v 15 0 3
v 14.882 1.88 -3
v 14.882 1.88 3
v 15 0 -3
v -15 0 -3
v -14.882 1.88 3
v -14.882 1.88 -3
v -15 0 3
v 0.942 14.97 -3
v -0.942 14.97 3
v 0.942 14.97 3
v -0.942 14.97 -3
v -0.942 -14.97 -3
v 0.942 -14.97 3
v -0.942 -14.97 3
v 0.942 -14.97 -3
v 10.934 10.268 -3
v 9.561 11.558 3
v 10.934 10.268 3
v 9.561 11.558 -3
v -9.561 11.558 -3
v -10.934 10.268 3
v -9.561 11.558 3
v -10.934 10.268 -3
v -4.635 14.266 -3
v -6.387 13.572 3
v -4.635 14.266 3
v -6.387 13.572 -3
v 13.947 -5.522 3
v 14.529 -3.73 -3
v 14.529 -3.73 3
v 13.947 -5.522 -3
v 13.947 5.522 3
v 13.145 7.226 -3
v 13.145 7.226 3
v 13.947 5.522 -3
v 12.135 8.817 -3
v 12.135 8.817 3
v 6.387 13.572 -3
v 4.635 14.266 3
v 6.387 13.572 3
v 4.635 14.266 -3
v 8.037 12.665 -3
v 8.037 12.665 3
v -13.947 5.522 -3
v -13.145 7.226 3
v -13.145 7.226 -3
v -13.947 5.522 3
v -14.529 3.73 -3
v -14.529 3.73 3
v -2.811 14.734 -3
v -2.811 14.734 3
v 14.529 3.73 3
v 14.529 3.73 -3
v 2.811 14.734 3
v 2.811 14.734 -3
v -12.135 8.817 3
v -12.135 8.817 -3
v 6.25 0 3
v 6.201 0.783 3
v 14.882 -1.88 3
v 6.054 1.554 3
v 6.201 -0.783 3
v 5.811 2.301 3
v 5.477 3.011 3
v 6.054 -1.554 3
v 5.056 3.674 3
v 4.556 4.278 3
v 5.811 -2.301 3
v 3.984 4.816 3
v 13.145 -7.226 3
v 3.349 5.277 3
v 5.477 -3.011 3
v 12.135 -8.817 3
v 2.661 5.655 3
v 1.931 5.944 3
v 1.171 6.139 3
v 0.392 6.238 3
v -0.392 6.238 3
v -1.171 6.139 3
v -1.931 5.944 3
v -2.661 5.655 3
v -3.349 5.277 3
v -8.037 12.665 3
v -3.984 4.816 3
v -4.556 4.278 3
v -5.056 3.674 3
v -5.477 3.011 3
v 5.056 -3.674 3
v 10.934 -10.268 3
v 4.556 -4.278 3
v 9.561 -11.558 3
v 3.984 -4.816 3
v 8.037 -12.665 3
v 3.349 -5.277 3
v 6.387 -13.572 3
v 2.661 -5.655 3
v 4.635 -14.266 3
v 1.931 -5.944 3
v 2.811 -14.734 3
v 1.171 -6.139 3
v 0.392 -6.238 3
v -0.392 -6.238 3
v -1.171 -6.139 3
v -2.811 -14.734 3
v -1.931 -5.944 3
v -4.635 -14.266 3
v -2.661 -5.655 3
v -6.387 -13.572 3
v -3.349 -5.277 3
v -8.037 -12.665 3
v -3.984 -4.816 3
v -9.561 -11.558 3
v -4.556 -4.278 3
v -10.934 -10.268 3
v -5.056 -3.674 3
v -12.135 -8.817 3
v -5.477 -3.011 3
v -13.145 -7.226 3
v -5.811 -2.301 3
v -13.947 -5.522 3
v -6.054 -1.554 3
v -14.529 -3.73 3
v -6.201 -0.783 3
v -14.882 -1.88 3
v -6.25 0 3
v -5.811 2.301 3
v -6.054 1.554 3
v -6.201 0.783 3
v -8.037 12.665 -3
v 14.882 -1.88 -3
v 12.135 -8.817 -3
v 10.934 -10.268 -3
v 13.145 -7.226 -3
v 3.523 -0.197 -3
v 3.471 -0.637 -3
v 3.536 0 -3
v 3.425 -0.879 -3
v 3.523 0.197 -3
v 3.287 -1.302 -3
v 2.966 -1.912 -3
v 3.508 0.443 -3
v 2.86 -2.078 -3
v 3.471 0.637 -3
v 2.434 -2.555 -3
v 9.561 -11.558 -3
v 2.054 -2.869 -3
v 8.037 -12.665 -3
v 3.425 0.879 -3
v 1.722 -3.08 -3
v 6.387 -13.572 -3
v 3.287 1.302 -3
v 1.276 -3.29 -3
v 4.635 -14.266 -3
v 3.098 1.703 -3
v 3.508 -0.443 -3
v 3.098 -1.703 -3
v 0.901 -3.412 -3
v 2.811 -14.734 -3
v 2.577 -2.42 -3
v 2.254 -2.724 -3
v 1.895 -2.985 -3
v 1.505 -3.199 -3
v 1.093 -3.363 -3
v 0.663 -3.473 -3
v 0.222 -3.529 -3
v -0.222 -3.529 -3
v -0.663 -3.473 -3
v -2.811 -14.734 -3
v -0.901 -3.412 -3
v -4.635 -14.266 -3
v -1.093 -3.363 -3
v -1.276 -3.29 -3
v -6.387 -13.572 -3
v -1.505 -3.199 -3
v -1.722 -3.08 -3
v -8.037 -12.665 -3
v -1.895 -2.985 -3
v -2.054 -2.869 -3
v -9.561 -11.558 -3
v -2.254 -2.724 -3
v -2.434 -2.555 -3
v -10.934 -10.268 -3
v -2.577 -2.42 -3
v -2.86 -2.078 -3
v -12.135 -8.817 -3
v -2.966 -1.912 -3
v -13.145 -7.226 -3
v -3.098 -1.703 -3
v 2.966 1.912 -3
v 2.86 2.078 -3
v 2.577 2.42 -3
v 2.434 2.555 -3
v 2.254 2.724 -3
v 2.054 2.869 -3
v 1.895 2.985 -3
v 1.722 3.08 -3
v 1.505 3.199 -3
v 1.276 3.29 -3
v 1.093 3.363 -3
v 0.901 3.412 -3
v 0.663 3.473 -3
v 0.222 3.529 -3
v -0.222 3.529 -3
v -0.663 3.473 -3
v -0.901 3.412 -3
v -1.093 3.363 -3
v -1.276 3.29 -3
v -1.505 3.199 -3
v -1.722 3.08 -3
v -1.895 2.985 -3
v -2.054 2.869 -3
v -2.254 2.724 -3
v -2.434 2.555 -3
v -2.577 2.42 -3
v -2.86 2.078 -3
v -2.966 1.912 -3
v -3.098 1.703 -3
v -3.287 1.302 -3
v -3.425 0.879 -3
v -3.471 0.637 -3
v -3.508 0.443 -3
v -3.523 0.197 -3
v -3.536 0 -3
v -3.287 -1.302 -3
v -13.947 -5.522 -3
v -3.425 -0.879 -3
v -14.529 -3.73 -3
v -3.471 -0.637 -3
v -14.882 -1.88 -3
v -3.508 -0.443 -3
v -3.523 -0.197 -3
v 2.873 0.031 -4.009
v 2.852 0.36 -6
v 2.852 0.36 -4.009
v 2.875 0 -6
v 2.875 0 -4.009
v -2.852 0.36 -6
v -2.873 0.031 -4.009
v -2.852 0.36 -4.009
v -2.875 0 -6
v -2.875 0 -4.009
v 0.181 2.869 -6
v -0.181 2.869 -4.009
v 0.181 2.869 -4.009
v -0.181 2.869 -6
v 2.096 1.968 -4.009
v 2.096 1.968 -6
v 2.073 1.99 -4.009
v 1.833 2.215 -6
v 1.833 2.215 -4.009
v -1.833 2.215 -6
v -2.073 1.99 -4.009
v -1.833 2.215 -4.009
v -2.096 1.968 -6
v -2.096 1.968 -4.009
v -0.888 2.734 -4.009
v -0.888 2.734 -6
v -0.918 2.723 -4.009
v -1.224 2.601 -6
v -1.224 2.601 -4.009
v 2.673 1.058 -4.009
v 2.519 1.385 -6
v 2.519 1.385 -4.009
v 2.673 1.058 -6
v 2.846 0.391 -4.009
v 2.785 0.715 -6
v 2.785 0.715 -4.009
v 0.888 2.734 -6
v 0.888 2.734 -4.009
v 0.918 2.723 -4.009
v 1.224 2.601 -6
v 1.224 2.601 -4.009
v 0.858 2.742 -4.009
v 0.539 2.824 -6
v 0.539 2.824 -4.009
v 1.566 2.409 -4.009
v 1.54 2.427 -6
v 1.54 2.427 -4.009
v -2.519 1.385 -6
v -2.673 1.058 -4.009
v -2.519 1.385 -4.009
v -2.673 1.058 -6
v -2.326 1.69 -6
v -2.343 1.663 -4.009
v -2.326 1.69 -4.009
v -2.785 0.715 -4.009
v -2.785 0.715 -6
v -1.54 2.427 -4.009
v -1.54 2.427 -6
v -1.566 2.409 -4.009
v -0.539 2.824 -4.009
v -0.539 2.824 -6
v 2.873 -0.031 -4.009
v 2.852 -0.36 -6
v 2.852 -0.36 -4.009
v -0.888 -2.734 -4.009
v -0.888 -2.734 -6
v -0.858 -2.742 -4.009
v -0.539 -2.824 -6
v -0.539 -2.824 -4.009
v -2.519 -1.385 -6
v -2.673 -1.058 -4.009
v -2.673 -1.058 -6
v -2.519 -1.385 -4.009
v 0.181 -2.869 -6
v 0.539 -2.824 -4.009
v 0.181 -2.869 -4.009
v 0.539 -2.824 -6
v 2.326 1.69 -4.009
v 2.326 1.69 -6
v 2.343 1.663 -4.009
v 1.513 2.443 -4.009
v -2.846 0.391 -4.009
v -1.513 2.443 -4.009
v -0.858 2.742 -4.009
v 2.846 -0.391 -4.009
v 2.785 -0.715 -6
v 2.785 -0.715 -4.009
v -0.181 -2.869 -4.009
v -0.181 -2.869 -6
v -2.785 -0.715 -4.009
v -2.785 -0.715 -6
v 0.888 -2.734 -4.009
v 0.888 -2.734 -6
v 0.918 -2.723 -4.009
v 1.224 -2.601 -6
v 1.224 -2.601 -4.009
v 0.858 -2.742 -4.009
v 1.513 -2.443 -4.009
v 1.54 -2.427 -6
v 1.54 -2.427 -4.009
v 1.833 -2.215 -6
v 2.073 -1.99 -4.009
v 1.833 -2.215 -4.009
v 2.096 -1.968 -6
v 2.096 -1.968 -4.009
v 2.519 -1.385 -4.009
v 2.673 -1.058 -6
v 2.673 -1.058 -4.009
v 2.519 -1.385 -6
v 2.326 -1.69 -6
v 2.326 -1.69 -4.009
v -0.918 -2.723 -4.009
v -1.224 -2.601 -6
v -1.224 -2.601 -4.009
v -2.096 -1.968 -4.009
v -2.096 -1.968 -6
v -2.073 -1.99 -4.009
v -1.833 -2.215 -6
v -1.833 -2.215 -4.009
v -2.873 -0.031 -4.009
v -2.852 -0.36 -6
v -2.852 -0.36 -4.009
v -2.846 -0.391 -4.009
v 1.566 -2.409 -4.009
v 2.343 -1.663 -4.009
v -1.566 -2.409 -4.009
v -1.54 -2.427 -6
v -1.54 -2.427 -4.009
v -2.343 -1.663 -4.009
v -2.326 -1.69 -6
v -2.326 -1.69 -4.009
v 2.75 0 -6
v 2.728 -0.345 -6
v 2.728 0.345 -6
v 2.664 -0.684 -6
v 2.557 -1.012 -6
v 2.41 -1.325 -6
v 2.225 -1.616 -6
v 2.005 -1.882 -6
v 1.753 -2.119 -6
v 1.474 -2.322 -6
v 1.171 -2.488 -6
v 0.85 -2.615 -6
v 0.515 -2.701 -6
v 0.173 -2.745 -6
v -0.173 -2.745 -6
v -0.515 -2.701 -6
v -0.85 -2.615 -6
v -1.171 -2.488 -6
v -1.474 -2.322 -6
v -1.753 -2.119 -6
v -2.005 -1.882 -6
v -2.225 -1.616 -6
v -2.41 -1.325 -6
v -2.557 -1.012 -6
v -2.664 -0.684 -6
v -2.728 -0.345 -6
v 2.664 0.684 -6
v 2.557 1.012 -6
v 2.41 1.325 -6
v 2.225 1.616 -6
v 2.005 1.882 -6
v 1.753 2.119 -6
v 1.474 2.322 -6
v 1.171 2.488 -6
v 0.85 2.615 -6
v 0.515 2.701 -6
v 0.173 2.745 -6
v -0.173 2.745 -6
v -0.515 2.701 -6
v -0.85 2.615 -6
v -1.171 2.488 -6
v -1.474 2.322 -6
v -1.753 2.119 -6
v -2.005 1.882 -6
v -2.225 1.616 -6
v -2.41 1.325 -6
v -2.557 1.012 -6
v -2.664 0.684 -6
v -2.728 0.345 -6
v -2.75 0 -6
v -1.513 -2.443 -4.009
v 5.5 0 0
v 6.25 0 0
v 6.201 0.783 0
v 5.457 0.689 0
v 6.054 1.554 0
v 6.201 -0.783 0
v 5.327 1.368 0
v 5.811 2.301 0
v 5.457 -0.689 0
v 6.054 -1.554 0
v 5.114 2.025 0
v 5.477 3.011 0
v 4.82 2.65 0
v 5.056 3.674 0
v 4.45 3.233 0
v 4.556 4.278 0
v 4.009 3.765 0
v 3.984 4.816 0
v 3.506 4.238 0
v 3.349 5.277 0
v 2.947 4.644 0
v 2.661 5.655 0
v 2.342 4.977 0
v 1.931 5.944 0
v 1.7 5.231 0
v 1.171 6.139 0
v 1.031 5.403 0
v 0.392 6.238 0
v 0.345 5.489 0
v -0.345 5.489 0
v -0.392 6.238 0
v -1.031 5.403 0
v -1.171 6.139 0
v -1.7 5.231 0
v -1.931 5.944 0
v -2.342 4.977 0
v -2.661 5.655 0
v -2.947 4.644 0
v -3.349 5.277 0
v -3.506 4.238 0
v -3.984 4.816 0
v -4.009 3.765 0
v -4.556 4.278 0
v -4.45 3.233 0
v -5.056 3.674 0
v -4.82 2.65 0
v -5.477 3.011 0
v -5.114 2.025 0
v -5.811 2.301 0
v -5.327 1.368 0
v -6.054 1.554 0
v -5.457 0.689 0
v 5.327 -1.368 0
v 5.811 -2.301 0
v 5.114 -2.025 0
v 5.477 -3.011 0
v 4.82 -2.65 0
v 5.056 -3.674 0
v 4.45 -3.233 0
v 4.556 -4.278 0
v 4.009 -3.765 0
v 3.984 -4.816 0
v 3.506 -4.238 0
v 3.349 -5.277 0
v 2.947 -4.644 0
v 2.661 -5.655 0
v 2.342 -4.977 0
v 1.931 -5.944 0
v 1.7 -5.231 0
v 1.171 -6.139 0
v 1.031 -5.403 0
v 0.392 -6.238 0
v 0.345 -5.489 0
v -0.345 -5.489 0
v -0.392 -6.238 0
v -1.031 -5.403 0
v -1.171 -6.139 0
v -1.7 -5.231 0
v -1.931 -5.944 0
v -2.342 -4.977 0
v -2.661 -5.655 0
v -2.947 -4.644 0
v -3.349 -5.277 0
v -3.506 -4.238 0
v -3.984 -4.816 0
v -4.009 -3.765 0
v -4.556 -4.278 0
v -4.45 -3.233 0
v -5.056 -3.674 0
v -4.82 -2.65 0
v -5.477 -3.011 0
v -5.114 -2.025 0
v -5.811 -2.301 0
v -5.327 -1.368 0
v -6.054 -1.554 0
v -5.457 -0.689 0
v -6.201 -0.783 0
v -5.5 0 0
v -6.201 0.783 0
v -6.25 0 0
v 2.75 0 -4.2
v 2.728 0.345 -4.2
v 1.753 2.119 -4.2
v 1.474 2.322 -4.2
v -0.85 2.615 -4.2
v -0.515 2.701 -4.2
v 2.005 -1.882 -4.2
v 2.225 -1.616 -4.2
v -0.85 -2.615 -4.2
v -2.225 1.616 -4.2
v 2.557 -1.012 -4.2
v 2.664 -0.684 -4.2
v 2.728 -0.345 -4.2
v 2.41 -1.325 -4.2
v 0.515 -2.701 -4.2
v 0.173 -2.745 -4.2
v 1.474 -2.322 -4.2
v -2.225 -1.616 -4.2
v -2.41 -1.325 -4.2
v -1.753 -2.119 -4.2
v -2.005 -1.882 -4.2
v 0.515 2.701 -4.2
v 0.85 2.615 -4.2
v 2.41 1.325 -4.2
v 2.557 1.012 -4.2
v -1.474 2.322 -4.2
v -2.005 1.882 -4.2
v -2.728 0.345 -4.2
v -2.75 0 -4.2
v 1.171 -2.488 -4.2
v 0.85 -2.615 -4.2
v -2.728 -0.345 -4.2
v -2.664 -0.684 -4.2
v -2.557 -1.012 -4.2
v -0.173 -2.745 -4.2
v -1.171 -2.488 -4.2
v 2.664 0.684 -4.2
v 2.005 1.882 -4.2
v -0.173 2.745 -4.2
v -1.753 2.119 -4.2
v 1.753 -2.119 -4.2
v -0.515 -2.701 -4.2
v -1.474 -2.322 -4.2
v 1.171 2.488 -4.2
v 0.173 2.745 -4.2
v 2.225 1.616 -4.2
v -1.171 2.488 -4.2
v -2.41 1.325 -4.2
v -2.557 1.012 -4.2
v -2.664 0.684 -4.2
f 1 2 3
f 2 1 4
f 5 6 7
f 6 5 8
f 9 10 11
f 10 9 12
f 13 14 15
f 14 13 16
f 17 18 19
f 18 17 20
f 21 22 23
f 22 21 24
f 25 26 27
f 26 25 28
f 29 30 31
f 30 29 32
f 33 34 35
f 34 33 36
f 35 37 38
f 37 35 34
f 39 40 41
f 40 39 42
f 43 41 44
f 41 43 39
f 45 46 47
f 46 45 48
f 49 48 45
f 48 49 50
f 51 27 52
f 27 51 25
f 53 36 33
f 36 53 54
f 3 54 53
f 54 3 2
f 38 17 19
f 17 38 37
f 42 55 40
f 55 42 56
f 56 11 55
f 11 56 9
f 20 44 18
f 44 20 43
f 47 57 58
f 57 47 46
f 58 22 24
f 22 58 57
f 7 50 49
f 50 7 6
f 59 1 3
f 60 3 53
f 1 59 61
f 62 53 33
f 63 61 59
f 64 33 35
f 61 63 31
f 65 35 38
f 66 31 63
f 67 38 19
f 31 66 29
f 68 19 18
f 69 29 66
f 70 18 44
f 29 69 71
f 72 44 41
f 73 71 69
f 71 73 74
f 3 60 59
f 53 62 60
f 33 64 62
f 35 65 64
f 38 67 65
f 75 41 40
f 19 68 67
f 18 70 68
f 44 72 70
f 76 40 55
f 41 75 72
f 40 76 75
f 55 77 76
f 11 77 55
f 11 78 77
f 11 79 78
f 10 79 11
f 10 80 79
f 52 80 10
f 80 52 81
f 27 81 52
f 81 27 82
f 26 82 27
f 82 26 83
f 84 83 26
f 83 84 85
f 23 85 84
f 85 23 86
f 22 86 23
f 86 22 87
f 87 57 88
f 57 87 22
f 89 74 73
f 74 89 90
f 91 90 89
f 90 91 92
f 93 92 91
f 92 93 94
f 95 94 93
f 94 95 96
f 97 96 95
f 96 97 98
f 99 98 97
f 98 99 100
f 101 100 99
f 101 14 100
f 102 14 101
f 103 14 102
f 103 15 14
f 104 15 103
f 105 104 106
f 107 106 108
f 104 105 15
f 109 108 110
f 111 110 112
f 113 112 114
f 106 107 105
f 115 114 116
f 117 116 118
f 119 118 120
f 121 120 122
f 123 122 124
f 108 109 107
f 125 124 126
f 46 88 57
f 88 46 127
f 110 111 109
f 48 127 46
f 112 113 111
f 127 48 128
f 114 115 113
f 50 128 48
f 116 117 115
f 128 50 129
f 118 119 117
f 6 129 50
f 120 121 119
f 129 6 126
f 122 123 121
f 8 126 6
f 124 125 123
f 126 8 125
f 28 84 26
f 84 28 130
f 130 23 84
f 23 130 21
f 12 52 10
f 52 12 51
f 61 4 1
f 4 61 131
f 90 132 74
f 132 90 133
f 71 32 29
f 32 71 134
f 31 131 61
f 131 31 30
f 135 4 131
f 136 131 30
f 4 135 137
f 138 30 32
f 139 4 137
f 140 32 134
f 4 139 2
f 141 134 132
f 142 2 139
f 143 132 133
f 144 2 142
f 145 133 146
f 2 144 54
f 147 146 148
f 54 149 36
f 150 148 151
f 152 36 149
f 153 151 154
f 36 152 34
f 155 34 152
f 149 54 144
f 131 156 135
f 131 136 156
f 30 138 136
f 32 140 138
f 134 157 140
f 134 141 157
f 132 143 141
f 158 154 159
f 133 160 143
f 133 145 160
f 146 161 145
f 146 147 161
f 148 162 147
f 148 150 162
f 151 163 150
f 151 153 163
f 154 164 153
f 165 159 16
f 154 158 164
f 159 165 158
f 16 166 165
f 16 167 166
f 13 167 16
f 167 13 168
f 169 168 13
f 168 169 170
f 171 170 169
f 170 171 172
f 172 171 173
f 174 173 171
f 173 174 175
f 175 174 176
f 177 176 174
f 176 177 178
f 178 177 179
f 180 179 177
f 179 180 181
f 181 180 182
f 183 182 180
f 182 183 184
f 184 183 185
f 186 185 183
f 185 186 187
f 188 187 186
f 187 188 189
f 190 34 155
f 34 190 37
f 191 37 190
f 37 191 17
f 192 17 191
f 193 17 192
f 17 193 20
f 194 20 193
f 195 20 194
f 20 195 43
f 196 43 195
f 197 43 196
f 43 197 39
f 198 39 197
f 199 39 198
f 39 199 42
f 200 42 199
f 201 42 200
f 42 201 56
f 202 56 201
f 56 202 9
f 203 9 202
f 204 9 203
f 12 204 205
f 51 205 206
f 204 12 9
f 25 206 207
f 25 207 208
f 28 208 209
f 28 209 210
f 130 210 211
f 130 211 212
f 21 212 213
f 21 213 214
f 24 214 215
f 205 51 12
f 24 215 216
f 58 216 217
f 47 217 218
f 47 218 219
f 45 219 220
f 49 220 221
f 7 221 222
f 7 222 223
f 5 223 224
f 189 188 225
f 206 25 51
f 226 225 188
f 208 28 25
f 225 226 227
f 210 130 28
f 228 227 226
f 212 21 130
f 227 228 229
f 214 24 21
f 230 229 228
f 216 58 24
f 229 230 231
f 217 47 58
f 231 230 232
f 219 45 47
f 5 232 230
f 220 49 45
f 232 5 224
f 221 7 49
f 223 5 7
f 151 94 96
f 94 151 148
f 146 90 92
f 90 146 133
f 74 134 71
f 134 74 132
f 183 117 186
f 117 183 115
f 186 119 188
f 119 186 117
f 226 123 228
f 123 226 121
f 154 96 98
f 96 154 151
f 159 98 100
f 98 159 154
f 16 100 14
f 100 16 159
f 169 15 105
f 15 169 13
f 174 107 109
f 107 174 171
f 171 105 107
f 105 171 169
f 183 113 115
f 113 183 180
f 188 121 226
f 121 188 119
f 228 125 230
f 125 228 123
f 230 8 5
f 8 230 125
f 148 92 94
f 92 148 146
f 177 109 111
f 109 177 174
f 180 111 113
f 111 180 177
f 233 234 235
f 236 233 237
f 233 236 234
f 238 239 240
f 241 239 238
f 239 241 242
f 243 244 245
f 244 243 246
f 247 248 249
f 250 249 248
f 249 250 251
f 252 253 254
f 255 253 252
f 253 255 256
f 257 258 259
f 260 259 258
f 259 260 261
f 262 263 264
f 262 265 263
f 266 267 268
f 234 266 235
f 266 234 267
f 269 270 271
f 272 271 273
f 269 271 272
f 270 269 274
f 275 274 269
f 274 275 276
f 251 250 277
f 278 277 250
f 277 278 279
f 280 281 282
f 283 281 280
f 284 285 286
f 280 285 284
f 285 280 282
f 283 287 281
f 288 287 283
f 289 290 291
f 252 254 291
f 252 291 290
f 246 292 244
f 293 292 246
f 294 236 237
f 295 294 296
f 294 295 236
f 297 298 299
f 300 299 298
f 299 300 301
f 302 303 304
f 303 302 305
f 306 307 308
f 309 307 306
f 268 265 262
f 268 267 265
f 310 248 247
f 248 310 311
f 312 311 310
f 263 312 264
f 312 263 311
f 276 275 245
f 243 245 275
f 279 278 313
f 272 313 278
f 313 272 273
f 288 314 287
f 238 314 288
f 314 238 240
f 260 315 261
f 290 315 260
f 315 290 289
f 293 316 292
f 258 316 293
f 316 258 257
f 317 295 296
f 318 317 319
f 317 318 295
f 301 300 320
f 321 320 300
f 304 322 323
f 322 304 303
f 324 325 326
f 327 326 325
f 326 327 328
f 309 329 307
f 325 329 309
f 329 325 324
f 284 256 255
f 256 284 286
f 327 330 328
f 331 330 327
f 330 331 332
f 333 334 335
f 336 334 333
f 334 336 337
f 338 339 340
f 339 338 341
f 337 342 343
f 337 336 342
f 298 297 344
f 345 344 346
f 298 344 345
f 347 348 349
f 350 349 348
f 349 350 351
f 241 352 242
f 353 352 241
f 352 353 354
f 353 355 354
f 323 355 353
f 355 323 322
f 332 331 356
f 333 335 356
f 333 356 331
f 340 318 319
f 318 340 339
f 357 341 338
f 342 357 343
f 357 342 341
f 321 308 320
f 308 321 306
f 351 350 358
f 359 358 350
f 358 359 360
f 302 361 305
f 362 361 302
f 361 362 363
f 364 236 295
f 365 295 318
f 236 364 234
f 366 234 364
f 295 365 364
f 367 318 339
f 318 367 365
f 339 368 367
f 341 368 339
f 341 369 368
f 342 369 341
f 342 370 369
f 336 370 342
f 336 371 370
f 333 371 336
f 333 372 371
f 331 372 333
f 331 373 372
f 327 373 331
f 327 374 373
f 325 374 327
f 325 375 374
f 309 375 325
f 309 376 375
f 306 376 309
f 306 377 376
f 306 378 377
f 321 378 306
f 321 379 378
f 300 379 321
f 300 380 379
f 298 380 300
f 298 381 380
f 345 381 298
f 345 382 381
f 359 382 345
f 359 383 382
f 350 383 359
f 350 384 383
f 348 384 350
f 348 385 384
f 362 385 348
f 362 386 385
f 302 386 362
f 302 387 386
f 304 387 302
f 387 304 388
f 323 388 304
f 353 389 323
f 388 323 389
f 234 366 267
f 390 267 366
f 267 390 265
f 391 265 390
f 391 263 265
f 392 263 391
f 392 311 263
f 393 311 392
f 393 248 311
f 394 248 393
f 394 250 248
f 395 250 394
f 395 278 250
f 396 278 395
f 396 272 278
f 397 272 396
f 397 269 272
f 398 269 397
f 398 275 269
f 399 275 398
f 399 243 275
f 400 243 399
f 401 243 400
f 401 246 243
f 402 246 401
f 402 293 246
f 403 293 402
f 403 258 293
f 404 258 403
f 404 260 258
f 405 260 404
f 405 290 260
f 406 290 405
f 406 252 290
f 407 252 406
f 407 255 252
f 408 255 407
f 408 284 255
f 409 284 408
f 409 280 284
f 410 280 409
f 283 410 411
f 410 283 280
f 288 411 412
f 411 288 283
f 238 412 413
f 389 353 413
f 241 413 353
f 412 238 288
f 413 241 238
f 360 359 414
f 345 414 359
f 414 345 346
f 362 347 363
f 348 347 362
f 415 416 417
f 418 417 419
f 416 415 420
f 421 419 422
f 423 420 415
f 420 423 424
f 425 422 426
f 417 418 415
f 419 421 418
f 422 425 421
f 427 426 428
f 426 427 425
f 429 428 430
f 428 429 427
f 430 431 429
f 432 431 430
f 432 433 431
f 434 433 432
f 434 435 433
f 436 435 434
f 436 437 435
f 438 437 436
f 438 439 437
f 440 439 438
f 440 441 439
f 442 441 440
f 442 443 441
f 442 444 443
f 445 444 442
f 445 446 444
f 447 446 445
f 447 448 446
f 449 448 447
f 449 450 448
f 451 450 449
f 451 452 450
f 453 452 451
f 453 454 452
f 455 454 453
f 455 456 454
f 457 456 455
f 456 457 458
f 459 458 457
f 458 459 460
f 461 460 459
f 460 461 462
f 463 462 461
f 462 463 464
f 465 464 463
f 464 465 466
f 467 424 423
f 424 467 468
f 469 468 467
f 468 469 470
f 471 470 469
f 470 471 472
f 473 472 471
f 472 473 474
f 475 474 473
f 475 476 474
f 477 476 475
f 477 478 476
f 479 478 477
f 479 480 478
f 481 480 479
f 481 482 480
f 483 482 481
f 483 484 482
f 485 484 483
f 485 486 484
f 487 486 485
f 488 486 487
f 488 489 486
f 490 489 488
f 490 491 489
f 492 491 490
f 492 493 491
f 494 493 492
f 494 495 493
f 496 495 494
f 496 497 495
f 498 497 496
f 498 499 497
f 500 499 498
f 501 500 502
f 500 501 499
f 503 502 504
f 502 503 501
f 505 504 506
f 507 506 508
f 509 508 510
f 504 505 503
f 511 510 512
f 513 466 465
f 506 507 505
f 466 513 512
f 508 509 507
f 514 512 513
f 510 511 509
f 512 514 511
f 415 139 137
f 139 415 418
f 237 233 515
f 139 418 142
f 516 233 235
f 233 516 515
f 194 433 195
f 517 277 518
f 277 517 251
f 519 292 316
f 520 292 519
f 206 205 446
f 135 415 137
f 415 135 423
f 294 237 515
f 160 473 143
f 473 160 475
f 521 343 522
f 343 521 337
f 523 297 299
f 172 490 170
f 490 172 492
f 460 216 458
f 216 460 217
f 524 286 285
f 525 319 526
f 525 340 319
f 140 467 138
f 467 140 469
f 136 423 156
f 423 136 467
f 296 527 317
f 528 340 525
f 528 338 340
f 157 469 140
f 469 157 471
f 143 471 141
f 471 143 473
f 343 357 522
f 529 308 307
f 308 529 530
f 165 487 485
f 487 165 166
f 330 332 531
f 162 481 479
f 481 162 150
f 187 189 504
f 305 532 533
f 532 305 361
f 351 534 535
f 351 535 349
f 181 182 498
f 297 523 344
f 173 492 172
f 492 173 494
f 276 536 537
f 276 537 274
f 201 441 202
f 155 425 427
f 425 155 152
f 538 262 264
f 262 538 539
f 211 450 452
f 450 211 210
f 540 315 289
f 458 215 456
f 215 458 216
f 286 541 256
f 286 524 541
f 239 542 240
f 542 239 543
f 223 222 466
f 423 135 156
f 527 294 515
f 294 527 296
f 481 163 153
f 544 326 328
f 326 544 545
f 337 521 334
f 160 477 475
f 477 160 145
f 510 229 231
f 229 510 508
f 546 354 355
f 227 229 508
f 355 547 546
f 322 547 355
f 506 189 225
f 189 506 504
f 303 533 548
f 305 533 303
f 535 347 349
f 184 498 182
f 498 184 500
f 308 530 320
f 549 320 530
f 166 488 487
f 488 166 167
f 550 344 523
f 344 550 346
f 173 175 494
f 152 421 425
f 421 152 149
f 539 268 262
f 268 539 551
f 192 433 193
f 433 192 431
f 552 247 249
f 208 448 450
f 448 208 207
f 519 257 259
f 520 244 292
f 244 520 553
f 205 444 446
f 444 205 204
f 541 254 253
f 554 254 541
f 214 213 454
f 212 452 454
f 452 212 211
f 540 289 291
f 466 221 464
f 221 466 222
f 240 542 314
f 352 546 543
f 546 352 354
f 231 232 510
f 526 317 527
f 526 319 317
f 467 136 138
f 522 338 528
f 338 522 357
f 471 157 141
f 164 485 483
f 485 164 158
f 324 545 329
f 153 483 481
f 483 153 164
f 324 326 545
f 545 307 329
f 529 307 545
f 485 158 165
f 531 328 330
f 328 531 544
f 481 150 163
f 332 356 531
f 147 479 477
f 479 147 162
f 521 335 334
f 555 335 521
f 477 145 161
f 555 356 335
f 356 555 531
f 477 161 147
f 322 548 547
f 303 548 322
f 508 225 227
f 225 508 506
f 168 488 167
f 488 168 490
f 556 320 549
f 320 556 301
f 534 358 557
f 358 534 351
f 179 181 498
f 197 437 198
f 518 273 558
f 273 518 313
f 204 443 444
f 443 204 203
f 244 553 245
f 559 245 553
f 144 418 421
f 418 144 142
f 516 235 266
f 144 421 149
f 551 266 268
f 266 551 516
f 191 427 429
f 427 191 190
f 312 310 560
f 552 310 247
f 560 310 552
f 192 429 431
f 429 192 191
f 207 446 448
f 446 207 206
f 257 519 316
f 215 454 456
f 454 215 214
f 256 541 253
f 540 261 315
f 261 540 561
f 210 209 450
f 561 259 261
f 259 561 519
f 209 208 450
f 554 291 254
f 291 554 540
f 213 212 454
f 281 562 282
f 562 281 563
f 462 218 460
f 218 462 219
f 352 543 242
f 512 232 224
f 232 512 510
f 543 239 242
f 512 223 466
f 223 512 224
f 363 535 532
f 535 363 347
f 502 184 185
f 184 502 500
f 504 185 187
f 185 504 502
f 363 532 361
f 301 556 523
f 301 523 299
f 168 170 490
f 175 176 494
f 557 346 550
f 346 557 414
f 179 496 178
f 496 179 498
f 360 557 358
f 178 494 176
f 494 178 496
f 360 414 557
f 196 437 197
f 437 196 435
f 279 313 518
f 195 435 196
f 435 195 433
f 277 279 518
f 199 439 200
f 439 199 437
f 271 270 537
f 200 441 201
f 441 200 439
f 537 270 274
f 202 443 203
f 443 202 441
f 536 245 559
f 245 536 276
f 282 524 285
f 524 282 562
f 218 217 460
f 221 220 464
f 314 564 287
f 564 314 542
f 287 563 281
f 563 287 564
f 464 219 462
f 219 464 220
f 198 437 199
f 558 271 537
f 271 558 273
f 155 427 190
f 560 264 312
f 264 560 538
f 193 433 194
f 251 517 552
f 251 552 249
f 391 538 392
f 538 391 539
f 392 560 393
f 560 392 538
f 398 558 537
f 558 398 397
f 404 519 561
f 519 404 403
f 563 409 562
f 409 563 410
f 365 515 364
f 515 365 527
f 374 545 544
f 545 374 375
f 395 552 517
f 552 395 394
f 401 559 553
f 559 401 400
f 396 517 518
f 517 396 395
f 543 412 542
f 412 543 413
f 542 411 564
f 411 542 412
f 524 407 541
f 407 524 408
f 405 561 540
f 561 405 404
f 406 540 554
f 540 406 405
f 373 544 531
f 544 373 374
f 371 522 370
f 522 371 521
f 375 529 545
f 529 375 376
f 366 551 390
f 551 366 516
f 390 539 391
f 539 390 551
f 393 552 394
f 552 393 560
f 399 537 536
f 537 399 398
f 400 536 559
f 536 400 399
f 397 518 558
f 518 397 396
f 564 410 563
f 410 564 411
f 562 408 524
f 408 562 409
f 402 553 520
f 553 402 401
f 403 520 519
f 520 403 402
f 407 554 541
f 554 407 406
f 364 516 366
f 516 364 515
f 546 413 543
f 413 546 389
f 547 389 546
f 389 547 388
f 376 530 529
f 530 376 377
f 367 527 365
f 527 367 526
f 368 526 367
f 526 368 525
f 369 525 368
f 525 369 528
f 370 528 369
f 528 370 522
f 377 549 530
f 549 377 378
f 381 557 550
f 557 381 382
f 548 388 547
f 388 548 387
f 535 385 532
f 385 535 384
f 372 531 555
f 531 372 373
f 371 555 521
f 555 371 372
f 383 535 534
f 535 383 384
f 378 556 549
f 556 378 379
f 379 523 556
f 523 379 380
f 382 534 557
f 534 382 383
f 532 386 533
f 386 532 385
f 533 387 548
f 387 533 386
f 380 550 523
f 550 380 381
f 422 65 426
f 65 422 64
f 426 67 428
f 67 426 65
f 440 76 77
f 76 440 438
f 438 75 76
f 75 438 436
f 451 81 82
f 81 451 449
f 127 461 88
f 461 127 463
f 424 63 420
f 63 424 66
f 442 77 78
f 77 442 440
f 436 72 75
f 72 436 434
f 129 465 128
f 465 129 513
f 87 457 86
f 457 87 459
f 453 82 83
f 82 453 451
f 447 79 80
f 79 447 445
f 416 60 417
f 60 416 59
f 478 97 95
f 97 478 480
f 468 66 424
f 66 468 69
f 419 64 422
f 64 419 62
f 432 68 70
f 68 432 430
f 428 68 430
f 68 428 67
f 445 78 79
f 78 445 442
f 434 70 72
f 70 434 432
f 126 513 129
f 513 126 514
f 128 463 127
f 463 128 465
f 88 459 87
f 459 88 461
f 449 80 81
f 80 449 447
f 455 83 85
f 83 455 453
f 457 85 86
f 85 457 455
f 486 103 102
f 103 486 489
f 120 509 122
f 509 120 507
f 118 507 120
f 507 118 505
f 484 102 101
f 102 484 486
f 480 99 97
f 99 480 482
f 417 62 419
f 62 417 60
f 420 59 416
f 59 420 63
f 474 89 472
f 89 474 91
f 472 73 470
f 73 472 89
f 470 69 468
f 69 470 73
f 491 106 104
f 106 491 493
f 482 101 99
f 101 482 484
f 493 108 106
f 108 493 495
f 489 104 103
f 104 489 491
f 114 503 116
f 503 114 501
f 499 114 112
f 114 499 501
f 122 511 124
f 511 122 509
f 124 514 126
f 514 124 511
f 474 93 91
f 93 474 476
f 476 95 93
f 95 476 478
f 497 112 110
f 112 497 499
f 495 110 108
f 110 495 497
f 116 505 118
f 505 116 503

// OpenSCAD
$fn = 50;


difference() {
	union() {
		translate(v = [0, 0, -3.0000000000]) {
			cylinder(h = 6, r = 15.0000000000);
		}
		#translate(v = [0, 0, -6.0000000000]) {
			cylinder(h = 6, r = 2.8750000000);
		}
	}
	union() {
		translate(v = [0, 0, 0]) {
			rotate(a = [0, 0, 0]) {
				difference() {
					union() {
						translate(v = [0, 0, -6.0000000000]) {
							cylinder(h = 6, r = 2.2500000000);
						}
						translate(v = [0, 0, -4.2000000000]) {
							cylinder(h = 4.2000000000, r1 = 2.7500000000, r2 = 5.5000000000);
						}
						translate(v = [0, 0, -6.0000000000]) {
							cylinder(h = 6, r = 2.7500000000);
						}
						translate(v = [0, 0, -6.0000000000]) {
							cylinder(h = 6, r = 2.2500000000);
						}
					}
					union();
				}
			}
		}
		#cylinder(h = 3, r = 6.2500000000);
	}
}
